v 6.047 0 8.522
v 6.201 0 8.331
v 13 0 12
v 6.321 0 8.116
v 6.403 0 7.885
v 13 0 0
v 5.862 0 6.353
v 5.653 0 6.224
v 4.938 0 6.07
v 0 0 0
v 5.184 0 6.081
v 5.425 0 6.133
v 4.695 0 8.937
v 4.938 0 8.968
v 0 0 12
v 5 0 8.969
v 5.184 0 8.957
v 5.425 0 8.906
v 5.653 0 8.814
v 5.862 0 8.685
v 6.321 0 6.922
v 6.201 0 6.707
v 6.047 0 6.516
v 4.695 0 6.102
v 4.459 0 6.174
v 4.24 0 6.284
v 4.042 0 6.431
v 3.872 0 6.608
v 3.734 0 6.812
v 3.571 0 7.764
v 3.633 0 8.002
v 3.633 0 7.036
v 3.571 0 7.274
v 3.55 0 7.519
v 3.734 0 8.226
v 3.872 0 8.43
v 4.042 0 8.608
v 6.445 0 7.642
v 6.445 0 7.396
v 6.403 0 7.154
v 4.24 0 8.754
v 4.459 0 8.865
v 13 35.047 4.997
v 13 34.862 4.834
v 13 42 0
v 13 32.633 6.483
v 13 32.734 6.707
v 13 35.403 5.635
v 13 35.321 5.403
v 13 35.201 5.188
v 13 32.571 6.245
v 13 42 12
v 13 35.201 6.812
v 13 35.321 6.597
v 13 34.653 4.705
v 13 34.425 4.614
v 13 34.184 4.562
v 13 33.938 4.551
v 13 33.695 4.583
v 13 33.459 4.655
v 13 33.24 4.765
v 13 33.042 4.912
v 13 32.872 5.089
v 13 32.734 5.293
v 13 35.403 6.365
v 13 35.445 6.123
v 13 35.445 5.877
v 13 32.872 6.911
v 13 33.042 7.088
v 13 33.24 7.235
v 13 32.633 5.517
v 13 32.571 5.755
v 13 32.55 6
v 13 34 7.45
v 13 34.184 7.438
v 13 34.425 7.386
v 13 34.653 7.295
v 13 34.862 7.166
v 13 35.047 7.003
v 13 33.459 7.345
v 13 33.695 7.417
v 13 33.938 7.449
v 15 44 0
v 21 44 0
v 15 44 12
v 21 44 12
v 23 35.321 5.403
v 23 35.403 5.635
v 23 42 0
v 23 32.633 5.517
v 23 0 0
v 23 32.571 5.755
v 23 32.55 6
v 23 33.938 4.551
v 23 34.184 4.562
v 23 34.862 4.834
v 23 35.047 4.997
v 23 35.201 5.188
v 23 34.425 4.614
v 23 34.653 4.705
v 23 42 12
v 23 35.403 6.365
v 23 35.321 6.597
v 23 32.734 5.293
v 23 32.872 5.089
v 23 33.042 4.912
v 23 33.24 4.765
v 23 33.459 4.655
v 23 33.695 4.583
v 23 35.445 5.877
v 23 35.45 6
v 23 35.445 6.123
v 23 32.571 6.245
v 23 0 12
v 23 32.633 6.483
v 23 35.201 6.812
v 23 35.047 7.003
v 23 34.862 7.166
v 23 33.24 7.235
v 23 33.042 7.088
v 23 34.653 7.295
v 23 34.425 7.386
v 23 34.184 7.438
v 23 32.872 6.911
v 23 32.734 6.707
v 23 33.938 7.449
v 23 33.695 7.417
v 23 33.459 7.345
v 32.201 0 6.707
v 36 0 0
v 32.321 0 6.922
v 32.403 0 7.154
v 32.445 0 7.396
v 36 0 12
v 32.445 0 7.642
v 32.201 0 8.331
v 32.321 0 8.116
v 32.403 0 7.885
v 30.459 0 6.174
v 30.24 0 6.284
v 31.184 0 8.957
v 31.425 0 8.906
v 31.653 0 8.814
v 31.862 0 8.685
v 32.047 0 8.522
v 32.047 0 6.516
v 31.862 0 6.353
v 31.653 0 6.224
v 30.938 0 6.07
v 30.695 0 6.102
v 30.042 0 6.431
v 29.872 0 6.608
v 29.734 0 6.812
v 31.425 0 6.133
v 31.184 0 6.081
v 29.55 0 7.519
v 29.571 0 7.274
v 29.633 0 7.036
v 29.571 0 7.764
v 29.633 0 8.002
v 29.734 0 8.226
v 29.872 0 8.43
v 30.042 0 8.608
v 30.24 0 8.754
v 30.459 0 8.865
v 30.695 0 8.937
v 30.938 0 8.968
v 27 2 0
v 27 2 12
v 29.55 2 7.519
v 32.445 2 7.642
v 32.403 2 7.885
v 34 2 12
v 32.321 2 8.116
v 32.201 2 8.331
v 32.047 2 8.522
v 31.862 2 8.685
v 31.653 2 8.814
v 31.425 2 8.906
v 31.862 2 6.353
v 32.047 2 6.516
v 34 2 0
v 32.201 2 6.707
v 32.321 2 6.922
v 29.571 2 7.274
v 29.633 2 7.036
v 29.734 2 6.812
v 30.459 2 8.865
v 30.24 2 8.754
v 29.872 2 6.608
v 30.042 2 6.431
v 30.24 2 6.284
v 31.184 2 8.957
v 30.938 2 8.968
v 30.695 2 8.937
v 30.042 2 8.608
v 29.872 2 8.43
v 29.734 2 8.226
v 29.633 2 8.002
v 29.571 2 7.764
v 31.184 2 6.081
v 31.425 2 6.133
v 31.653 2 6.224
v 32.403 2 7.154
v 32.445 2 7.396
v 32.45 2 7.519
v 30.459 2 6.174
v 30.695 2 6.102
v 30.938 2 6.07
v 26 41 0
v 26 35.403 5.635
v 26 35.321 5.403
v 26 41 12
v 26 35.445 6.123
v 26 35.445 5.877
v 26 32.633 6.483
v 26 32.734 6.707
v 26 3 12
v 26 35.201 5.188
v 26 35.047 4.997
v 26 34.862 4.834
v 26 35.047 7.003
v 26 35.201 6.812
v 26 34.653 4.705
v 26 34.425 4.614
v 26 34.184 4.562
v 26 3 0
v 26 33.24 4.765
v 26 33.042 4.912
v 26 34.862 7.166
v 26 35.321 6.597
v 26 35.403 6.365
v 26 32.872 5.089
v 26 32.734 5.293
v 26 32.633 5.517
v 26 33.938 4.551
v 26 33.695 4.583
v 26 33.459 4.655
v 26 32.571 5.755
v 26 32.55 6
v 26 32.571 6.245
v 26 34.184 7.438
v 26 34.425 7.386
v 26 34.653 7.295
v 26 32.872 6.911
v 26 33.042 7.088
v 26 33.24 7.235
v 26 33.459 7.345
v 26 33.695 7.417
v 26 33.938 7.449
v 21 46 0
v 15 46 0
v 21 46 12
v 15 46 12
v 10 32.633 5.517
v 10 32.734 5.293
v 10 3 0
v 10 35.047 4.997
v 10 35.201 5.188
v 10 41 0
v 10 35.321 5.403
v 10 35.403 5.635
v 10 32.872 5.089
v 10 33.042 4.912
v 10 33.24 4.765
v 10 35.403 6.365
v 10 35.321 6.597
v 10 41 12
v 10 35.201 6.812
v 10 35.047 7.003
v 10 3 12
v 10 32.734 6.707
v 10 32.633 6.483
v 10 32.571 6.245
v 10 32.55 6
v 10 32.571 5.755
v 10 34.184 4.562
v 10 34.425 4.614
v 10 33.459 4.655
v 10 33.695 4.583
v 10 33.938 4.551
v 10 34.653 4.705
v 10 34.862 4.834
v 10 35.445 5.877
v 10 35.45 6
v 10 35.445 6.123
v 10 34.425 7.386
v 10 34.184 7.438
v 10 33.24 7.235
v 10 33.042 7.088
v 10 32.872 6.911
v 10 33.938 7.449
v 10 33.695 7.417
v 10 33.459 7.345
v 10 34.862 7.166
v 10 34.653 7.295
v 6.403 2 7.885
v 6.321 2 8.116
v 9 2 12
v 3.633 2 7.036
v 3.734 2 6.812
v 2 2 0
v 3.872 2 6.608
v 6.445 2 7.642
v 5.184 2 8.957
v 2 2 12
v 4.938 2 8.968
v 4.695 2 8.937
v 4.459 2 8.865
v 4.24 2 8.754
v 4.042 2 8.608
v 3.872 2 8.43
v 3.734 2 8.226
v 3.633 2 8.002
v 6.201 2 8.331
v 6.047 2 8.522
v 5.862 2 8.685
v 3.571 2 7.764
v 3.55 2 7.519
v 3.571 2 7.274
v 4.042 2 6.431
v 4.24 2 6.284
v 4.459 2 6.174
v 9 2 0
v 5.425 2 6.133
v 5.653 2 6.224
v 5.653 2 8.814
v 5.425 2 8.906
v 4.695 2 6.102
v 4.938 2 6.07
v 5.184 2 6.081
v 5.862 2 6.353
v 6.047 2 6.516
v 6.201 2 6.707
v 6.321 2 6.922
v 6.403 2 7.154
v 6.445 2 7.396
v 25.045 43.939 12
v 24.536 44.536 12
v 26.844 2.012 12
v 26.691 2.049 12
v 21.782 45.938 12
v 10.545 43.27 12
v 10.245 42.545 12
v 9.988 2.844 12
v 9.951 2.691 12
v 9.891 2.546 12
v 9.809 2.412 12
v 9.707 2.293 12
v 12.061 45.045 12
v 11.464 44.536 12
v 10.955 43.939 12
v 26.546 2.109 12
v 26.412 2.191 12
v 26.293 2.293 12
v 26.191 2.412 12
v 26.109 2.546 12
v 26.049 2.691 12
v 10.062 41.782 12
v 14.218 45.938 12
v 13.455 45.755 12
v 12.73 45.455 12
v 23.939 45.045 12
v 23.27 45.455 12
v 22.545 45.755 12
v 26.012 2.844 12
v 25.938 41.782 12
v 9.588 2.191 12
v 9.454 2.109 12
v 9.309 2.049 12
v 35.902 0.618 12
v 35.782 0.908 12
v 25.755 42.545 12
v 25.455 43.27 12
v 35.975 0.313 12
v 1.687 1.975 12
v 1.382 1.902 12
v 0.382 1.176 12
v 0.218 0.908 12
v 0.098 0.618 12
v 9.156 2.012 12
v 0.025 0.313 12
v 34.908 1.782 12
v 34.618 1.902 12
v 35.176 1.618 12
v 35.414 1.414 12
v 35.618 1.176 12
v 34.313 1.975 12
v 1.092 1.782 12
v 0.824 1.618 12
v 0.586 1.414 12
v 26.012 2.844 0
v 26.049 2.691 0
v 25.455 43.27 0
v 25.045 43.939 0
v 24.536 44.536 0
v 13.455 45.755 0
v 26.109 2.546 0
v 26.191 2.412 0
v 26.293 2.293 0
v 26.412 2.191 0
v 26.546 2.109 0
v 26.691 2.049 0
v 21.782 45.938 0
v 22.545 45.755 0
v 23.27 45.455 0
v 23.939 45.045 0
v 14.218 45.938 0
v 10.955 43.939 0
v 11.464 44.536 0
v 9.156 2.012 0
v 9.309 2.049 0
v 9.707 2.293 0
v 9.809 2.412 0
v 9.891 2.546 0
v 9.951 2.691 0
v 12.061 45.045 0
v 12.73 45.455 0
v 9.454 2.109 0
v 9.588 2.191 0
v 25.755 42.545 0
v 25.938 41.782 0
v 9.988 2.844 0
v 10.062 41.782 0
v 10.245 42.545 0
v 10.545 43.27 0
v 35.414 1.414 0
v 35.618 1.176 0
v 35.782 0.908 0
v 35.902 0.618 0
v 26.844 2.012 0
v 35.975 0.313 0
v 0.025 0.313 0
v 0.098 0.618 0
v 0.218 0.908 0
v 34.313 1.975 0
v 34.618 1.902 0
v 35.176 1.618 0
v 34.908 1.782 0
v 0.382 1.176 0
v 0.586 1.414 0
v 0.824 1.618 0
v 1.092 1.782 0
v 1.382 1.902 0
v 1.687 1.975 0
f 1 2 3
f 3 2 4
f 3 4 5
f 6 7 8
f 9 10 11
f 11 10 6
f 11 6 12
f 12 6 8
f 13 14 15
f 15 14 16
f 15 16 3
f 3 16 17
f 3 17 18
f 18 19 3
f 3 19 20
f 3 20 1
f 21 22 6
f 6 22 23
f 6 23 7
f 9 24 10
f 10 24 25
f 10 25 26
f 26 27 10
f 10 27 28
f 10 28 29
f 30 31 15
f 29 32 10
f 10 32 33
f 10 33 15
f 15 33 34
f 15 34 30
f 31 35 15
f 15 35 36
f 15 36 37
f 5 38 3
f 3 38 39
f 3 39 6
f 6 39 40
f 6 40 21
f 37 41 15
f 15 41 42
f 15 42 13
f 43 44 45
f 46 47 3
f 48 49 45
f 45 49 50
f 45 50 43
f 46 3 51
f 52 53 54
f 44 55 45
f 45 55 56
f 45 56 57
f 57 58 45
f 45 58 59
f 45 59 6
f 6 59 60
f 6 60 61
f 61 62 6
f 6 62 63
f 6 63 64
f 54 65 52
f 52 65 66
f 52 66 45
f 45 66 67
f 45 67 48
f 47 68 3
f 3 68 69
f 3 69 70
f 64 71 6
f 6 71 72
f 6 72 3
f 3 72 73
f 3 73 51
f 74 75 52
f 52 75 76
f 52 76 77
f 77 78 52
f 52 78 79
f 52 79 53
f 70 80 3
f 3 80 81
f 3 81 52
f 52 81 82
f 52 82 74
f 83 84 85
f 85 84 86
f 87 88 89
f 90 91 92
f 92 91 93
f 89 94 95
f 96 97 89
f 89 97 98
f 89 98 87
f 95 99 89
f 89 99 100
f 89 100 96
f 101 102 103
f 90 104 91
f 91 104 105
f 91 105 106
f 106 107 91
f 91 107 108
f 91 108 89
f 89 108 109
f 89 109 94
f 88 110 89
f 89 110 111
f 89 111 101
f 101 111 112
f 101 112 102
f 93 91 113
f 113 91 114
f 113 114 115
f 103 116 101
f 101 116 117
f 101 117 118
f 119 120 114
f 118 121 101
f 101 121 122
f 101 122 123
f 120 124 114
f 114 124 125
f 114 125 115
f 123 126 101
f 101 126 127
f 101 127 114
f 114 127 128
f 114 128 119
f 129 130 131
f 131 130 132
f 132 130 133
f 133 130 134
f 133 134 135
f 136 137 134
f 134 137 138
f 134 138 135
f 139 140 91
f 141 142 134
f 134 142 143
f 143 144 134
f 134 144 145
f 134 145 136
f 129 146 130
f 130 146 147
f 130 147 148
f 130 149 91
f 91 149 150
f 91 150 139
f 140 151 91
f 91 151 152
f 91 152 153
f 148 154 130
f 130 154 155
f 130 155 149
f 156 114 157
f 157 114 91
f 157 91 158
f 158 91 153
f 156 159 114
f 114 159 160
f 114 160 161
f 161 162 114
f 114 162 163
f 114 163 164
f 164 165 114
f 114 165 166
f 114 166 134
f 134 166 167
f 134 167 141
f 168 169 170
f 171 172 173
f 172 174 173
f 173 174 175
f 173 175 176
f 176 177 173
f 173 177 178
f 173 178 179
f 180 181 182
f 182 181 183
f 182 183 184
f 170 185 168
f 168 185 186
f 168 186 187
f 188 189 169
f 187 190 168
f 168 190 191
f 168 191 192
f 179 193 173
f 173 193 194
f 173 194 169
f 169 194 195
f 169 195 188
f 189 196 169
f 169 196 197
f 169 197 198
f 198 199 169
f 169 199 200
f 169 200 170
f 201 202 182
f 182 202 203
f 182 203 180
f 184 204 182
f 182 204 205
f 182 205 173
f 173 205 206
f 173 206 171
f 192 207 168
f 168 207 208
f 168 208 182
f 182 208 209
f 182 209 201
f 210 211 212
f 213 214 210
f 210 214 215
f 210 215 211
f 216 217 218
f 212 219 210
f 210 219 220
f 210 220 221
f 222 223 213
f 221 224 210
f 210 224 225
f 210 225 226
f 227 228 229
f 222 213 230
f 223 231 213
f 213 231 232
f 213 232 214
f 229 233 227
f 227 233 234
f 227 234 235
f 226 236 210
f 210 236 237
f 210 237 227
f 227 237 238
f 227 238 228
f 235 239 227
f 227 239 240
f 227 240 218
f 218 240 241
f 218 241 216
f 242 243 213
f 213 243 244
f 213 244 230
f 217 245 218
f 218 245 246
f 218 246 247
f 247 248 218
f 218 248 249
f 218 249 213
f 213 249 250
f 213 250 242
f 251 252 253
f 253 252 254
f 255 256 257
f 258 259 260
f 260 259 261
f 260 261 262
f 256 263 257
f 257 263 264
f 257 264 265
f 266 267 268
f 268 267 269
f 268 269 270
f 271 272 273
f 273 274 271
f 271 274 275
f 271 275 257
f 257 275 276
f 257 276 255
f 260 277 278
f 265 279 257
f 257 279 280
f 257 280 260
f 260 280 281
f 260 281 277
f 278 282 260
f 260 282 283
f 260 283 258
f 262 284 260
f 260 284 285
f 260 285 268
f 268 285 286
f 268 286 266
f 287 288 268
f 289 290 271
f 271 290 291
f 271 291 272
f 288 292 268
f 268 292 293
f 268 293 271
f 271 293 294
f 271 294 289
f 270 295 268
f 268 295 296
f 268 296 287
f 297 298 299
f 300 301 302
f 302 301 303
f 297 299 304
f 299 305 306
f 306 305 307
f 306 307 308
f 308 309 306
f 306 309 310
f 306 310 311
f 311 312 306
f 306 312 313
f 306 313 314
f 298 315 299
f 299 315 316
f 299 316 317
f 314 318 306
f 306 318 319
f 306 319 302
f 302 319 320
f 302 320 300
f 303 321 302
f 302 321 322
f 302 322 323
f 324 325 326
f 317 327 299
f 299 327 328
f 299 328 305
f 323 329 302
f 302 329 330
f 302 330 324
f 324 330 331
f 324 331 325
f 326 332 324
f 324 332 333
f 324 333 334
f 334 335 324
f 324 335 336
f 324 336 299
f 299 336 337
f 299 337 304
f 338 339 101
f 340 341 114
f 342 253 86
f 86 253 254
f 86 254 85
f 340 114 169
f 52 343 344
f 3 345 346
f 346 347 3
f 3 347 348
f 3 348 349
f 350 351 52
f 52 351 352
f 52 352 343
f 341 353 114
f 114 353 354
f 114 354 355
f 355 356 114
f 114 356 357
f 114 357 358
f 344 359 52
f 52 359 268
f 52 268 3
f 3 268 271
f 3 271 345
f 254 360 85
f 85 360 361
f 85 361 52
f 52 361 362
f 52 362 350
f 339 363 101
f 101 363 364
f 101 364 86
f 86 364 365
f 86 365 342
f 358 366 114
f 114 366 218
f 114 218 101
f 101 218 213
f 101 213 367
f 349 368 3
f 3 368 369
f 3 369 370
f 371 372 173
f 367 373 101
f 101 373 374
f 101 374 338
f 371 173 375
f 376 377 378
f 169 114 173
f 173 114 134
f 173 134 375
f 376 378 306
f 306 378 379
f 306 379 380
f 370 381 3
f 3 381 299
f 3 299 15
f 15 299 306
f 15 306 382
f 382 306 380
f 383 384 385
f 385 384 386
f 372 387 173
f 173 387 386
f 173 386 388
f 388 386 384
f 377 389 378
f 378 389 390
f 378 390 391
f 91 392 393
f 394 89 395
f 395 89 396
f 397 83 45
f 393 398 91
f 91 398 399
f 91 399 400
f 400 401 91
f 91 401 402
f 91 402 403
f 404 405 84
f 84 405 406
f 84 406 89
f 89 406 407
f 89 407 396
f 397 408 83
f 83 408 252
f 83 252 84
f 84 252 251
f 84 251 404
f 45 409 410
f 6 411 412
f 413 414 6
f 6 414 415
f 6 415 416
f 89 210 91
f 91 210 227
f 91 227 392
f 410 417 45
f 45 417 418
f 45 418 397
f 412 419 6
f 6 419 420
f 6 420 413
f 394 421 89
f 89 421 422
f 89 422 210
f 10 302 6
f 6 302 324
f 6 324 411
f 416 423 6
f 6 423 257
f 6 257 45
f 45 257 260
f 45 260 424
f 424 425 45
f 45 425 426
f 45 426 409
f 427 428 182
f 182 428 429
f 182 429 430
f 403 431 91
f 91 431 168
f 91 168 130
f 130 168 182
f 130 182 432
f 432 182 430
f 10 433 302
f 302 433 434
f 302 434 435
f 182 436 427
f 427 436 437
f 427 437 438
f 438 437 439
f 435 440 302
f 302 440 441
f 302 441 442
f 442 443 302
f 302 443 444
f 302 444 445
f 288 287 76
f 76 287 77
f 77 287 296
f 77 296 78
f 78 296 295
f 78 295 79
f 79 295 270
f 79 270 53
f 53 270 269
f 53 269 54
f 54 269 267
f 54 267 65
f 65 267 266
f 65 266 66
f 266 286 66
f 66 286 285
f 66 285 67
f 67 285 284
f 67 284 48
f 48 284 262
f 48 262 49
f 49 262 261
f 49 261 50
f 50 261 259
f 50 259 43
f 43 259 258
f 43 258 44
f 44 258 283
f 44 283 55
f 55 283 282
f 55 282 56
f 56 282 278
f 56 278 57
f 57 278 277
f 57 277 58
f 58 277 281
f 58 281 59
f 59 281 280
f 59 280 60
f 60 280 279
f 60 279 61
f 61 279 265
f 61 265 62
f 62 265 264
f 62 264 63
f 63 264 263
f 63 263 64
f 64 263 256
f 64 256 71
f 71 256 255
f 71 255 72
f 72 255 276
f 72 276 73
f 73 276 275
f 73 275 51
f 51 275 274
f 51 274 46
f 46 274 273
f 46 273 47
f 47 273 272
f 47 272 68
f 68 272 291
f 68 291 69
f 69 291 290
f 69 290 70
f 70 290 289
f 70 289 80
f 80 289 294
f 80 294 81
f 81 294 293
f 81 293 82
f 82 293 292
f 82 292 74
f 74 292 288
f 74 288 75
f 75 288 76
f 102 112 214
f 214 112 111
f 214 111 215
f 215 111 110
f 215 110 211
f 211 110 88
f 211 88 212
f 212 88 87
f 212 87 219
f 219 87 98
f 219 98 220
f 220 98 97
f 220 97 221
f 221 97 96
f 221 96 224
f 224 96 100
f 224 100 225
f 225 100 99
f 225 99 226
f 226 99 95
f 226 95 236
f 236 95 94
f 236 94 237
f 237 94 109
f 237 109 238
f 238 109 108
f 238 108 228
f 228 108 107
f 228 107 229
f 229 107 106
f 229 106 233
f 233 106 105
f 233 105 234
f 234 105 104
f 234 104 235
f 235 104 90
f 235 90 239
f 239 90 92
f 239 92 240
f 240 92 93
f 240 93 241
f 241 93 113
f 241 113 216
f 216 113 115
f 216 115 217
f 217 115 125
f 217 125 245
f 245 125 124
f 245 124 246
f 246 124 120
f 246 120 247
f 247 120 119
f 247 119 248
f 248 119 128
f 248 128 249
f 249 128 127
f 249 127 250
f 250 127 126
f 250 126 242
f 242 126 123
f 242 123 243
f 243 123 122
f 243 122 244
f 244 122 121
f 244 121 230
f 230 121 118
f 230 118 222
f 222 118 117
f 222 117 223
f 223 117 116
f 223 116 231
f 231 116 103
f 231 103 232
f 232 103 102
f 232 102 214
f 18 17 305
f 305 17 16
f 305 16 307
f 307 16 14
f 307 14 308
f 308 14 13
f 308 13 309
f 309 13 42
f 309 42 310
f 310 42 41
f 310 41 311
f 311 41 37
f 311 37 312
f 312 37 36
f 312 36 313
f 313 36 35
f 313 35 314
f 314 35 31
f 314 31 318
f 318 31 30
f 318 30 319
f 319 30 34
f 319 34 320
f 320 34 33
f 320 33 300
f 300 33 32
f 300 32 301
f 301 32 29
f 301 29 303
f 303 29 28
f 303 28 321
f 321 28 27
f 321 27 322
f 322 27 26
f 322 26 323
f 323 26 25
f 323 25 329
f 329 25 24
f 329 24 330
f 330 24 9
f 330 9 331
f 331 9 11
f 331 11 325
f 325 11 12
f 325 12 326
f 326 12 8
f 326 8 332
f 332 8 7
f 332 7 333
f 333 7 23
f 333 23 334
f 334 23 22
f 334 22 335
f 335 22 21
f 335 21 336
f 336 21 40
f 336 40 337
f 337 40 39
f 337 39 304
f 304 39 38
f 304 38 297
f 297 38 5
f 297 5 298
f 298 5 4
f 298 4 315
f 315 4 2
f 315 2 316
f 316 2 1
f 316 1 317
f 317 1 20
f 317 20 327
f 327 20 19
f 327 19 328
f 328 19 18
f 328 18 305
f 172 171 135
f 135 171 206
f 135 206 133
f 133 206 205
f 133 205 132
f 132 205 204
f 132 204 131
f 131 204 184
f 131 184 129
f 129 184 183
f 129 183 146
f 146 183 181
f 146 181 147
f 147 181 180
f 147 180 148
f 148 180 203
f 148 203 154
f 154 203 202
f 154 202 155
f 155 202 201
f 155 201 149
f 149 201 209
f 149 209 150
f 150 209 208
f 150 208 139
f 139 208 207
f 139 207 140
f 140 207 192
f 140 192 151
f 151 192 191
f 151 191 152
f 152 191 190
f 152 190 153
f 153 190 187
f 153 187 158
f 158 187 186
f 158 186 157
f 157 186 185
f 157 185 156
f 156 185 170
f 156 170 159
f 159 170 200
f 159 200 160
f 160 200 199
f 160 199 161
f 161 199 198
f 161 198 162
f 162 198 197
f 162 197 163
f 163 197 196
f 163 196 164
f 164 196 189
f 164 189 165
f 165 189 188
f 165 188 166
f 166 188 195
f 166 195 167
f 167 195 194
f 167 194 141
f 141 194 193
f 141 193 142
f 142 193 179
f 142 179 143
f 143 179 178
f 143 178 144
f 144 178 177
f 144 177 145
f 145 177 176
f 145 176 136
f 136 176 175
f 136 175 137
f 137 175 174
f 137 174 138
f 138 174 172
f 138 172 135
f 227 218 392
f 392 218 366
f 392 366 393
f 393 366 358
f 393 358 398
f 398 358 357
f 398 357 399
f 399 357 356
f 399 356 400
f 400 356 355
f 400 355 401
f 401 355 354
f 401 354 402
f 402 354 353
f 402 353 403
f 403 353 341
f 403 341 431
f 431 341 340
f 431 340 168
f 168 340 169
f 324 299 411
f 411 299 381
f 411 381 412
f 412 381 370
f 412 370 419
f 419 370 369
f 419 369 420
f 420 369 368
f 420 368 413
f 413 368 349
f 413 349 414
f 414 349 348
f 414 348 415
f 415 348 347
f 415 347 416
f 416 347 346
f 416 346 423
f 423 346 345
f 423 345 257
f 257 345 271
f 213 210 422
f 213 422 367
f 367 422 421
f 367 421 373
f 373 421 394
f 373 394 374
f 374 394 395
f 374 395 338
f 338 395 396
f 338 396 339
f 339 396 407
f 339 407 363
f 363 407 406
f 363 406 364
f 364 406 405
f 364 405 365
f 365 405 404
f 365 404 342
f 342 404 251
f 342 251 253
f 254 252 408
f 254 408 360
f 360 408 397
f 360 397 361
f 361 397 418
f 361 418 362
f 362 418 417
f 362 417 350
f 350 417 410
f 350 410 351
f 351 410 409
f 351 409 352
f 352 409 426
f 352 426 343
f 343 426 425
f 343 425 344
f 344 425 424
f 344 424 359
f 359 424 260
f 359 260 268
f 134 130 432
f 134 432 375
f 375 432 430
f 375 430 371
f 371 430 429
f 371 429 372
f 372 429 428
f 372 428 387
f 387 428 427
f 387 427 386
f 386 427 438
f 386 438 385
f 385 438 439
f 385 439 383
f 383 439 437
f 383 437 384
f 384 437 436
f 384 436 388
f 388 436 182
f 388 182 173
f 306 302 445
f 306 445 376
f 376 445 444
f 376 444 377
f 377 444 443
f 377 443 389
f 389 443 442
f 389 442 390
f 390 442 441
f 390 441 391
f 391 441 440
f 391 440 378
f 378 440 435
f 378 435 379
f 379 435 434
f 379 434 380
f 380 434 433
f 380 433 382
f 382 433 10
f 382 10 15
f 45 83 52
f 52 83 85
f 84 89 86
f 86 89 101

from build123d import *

# Parameters (mm, degrees)
EXTRUDE_1_DEPTH          = 12
CUT_EXTRUDE_1_DEPTH      = 15
CUT_EXTRUDE_1_DEPTH_BACK = 15
SKETCH_2_R               = 1.45
SKETCH_3_R               = 1.45
CUT_EXTRUDE_2_DEPTH      = 15
FILLET_1_R               = 1
FILLET_2_R               = 5
FILLET_3_R               = 2
CHAMFER_1_SIZE           = 2


with BuildPart() as part:
    # 草图1 → 凸台-拉伸1 (new body)
    with BuildSketch(Plane.XY):
        Polygon((0, 0), (13, 0), (13, 44), (23, 44), (23, 0), (36, 0), (36, 2), (26, 2), (26, 46), (10, 46), (10, 2), (0, 2), align=None)
    extrude(amount=EXTRUDE_1_DEPTH)

    # 草图2 → 切除-拉伸1 (cut, two sides: drawn at the far end of the back side and taken through both)
    with BuildSketch(Plane(origin=(13, 0, 0), x_dir=(0, 0, -1), z_dir=(1, 0, 0)).offset(-CUT_EXTRUDE_1_DEPTH_BACK)):
        with Locations(Location((-6, 34, 0), (0, 0, 180))):
            Circle(SKETCH_2_R)
    extrude(amount=CUT_EXTRUDE_1_DEPTH + CUT_EXTRUDE_1_DEPTH_BACK, mode=Mode.SUBTRACT)

    # 草图3 → 切除-拉伸2 (cut)
    with BuildSketch(Plane(origin=(0, 2, 0), x_dir=(1, 0, 0), z_dir=(0, 1, 0))):
        with Locations(Location((5, -7.519173445, 0), (0, 0, 180))):
            Circle(SKETCH_3_R)
        with Locations(Location((31, -7.519173445, 0), (0, 0, 180))):
            Circle(SKETCH_3_R)
    extrude(amount=-CUT_EXTRUDE_2_DEPTH, mode=Mode.SUBTRACT)

    # 圆角1
    fillet_1_edges = [part.edges().sort_by_distance(p)[0] for p in [
        (10, 2, 6),
        (26, 2, 6),
    ]]
    fillet(fillet_1_edges, radius=FILLET_1_R)

    # 圆角2
    fillet_2_edges = [part.edges().sort_by_distance(p)[0] for p in [
        (10, 46, 6),
        (26, 46, 6),
    ]]
    fillet(fillet_2_edges, radius=FILLET_2_R)

    # 圆角3
    fillet_3_edges = [part.edges().sort_by_distance(p)[0] for p in [
        (36, 2, 6),
        (0, 2, 6),
    ]]
    fillet(fillet_3_edges, radius=FILLET_3_R - 0.0001)  # a hair under: the kernel refuses the full size

    # 倒角1
    chamfer_1_edges = [part.edges().sort_by_distance(p)[0] for p in [
        (23, 44, 6),
        (13, 44, 6),
    ]]
    chamfer(chamfer_1_edges, length=CHAMFER_1_SIZE)


solid = part.part
